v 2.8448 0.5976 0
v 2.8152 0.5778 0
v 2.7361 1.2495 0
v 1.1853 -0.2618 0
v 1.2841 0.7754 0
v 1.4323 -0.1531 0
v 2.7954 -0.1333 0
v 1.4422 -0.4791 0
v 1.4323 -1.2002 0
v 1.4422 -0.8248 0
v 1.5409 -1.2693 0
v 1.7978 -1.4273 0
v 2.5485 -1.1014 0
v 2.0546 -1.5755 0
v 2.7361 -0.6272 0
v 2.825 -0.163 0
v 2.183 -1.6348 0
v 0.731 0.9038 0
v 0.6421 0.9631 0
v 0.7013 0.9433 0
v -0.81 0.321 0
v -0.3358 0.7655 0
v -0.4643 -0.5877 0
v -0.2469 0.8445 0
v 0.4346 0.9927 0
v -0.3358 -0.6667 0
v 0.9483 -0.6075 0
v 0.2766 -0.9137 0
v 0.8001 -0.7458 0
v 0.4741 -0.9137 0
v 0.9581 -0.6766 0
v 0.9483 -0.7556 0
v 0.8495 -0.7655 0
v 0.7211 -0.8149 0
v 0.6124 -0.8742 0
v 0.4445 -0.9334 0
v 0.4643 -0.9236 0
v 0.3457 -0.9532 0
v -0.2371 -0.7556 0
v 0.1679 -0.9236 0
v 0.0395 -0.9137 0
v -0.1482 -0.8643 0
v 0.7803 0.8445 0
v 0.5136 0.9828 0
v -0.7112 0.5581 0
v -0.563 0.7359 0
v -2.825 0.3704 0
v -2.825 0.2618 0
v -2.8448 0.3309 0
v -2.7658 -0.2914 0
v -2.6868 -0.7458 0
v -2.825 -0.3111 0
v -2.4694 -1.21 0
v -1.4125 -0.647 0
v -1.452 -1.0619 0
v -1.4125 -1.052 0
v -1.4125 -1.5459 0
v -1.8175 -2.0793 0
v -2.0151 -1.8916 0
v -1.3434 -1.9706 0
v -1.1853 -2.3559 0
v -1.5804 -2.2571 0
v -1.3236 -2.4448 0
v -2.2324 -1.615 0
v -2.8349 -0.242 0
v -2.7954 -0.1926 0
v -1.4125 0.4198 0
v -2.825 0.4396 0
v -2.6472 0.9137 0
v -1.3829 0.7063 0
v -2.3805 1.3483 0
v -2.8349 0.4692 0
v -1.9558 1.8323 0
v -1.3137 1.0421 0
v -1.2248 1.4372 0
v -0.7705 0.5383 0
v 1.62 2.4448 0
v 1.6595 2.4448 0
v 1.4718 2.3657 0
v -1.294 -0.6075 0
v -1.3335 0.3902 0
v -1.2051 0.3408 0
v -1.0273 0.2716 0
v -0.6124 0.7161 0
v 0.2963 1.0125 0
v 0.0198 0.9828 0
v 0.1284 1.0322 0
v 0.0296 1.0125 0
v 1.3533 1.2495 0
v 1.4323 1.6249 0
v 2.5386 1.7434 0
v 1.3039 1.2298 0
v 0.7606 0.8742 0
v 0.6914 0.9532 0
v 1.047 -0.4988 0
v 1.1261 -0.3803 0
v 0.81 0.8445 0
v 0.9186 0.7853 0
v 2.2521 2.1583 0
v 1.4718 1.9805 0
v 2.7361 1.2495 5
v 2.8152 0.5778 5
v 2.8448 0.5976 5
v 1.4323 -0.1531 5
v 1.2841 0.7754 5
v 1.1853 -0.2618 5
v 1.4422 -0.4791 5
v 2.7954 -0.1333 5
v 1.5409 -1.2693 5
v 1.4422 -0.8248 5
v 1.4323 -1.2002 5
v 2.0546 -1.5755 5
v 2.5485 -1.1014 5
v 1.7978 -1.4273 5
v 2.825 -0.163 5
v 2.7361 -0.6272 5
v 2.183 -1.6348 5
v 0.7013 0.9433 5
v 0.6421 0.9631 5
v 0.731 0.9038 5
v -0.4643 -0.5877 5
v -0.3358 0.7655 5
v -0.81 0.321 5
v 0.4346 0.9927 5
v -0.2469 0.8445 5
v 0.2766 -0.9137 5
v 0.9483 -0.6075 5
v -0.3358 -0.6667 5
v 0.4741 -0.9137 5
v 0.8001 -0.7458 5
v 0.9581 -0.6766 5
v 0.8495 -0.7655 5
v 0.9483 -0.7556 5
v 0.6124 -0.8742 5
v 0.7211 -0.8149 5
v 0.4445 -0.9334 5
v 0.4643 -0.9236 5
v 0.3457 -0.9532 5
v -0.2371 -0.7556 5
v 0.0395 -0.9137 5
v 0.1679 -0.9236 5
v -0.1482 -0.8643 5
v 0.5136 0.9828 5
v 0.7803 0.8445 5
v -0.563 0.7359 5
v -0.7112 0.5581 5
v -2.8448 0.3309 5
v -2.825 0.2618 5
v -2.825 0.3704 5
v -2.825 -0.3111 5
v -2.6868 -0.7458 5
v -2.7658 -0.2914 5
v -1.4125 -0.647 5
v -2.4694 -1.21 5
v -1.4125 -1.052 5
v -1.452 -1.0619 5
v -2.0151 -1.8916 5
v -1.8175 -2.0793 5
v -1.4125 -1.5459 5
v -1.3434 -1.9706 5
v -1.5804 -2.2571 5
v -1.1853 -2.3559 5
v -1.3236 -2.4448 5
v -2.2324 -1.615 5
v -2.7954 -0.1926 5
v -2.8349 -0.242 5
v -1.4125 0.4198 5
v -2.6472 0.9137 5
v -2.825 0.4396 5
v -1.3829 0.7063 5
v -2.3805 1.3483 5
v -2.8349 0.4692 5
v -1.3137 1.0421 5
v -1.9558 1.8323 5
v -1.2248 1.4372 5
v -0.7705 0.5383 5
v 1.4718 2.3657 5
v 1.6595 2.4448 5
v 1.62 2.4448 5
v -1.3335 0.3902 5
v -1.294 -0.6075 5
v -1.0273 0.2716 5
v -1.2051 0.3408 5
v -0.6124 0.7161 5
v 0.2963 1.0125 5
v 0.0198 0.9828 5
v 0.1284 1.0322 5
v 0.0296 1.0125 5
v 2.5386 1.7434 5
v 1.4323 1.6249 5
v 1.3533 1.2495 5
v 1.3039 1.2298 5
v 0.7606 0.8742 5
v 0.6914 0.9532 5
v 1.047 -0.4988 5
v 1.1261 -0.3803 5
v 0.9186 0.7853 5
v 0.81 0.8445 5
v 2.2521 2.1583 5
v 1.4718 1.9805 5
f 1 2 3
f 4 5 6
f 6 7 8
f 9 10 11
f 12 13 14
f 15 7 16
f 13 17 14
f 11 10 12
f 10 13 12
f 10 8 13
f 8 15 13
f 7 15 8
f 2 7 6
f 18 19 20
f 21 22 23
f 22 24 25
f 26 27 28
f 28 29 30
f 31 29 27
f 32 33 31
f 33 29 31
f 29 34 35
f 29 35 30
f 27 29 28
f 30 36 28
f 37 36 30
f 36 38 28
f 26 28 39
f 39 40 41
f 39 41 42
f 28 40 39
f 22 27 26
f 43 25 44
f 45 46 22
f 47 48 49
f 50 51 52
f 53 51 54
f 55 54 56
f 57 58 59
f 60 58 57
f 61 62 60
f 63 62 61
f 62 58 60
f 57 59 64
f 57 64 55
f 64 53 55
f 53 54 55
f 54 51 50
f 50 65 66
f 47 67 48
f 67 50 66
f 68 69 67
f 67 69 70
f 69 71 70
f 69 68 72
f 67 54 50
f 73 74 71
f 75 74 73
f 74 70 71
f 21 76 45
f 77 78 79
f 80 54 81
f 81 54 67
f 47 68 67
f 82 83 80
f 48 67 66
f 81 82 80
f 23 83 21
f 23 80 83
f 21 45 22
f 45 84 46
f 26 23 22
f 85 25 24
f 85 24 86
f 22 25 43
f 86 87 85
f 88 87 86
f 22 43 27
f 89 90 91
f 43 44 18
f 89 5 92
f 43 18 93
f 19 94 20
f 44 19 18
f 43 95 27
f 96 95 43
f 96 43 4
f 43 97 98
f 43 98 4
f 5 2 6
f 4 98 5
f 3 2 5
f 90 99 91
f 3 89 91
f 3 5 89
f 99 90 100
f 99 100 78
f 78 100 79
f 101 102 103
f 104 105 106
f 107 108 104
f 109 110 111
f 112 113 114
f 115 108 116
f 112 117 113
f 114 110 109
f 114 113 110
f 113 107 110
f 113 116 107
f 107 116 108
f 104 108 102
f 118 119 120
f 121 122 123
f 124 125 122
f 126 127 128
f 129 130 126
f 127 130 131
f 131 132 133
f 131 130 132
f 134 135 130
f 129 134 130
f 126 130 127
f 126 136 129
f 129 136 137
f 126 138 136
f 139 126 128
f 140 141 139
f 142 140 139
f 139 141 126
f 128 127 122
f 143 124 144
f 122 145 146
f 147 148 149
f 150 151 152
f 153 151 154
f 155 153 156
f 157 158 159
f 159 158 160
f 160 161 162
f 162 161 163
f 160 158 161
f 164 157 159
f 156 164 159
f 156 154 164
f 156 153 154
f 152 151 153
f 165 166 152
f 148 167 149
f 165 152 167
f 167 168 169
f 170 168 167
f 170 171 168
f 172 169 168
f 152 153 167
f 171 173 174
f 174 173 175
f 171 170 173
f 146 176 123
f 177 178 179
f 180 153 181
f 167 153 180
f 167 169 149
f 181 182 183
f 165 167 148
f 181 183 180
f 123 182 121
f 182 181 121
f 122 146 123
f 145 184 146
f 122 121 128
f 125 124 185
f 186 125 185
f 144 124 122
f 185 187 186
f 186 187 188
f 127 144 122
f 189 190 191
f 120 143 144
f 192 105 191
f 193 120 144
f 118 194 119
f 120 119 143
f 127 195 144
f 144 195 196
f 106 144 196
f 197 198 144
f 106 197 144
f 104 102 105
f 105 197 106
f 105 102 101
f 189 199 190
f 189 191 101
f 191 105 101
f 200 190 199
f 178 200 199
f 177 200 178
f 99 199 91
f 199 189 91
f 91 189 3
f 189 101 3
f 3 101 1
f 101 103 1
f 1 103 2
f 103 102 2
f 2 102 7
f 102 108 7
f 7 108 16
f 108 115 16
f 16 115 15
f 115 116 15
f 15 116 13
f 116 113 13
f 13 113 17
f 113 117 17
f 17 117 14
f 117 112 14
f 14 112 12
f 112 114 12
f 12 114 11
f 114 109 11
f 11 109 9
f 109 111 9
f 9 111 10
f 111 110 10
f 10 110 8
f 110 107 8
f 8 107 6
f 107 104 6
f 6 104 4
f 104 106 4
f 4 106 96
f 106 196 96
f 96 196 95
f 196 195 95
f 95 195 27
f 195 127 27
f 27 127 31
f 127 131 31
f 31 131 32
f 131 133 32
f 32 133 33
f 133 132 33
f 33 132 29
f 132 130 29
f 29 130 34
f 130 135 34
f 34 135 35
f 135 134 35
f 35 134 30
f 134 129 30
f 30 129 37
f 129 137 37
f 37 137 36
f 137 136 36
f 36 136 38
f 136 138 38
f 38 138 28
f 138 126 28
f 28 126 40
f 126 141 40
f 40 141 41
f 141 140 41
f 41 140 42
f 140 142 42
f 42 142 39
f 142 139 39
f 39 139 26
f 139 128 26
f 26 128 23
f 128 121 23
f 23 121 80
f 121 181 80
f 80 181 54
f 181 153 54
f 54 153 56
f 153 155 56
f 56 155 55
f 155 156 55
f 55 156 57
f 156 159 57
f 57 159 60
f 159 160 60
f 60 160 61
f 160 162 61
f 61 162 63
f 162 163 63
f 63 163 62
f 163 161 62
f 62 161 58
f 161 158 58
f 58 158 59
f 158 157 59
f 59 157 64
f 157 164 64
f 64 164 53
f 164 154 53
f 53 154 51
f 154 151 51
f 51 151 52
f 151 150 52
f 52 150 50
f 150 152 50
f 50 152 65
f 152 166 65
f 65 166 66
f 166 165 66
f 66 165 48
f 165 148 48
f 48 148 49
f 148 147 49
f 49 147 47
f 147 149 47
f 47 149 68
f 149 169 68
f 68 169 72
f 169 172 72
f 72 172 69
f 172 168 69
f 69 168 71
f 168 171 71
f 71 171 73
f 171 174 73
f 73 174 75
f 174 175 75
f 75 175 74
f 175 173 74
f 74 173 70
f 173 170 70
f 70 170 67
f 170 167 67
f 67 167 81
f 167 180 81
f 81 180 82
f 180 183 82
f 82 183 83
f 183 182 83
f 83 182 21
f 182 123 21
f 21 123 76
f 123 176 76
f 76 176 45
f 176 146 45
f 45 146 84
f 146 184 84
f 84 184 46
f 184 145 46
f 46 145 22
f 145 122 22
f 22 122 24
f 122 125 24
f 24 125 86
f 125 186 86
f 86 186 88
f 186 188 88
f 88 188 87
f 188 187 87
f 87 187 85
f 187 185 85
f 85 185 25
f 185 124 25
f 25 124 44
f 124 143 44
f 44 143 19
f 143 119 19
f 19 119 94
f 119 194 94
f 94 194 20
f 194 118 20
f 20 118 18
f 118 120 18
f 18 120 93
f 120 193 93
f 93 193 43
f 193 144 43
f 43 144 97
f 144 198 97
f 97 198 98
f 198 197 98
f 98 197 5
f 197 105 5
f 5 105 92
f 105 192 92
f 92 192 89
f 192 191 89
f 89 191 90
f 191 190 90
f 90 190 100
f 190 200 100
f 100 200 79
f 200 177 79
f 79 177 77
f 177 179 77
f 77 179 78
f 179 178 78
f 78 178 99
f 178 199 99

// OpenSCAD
// Module names are of the form poly_<inkscape-path-id>().  As a result,
// you can associate a polygon in this OpenSCAD program with the corresponding
// SVG element in the Inkscape document by looking for the XML element with
// the attribute id="inkscape-path-id".

// fudge value is used to ensure that subtracted solids are a tad taller
// in the z dimension than the polygon being subtracted from.  This helps
// keep the resulting .stl file manifold.
fudge = 0.1;

module poly_path4341(h)
{
  scale([25.4/90, -25.4/90, 1]) union()
  {
    linear_extrude(height=h)
      polygon([[5.880000,-8.662500],[7.980000,-7.647500],[8.995000,-6.177500],[9.695000,-4.427500],[10.080000,-2.117500],[9.975000,-2.047500],[9.905000,0.472500],[10.010000,0.577500],[9.695000,2.222500],[9.030000,3.902500],[7.735000,5.792500],[7.280000,5.582500],[6.370000,5.057500],[5.460000,4.497500],[5.075000,4.252500],[5.110000,2.922500],[5.110000,1.697500],[5.075000,0.542500],[4.200000,0.927500],[3.990000,1.347500],[3.710000,1.767500],[3.360000,2.152500],[3.395000,2.397500],[3.360000,2.677500],[3.010000,2.712500],[2.835000,2.642500],[2.555000,2.887500],[2.170000,3.097500],[1.680000,3.237500],[1.645000,3.272500],[1.575000,3.307500],[1.225000,3.377500],[0.980000,3.237500],[0.595000,3.272500],[0.140000,3.237500],[-0.525000,3.062500],[-0.840000,2.677500],[-1.190000,2.362500],[-1.645000,2.082500],[-4.585000,2.152500],[-5.005000,2.292500],[-5.005000,3.727500],[-5.145000,3.762500],[-5.005000,5.477500],[-4.760000,6.982500],[-4.200000,8.347500],[-4.690000,8.662500],[-5.600000,7.997500],[-6.440000,7.367500],[-7.140000,6.702500],[-7.910000,5.722500],[-8.750000,4.287500],[-9.520000,2.642500],[-10.010000,1.102500],[-9.800000,1.032500],[-10.045000,0.857500],[-9.905000,0.682500],[-10.010000,-0.927500],[-10.080000,-1.172500],[-10.010000,-1.312500],[-10.010000,-1.557500],[-10.045000,-1.662500],[-9.380000,-3.237500],[-8.435000,-4.777500],[-6.930000,-6.492500],[-4.340000,-5.092500],[-4.655000,-3.692500],[-4.900000,-2.502500],[-5.005000,-1.487500],[-4.725000,-1.382500],[-4.270000,-1.207500],[-3.640000,-0.962500],[-2.870000,-1.137500],[-2.730000,-1.907500],[-2.520000,-1.977500],[-2.170000,-2.537500],[-1.995000,-2.607500],[-1.190000,-2.712500],[-0.875000,-2.992500],[0.070000,-3.482500],[0.105000,-3.587500],[0.455000,-3.657500],[1.050000,-3.587500],[1.295000,-3.552500],[1.540000,-3.517500],[1.820000,-3.482500],[2.275000,-3.412500],[2.450000,-3.377500],[2.485000,-3.342500],[2.590000,-3.202500],[2.695000,-3.097500],[2.765000,-2.992500],[2.870000,-2.992500],[3.255000,-2.782500],[4.550000,-2.747500],[4.620000,-4.357500],[4.795000,-4.427500],[5.075000,-5.757500],[5.215000,-7.017500],[5.215000,-8.382500],[5.740000,-8.662500],[5.775000,-8.662500],[5.880000,-8.662500]]);
  }
}

poly_path4341(5);
